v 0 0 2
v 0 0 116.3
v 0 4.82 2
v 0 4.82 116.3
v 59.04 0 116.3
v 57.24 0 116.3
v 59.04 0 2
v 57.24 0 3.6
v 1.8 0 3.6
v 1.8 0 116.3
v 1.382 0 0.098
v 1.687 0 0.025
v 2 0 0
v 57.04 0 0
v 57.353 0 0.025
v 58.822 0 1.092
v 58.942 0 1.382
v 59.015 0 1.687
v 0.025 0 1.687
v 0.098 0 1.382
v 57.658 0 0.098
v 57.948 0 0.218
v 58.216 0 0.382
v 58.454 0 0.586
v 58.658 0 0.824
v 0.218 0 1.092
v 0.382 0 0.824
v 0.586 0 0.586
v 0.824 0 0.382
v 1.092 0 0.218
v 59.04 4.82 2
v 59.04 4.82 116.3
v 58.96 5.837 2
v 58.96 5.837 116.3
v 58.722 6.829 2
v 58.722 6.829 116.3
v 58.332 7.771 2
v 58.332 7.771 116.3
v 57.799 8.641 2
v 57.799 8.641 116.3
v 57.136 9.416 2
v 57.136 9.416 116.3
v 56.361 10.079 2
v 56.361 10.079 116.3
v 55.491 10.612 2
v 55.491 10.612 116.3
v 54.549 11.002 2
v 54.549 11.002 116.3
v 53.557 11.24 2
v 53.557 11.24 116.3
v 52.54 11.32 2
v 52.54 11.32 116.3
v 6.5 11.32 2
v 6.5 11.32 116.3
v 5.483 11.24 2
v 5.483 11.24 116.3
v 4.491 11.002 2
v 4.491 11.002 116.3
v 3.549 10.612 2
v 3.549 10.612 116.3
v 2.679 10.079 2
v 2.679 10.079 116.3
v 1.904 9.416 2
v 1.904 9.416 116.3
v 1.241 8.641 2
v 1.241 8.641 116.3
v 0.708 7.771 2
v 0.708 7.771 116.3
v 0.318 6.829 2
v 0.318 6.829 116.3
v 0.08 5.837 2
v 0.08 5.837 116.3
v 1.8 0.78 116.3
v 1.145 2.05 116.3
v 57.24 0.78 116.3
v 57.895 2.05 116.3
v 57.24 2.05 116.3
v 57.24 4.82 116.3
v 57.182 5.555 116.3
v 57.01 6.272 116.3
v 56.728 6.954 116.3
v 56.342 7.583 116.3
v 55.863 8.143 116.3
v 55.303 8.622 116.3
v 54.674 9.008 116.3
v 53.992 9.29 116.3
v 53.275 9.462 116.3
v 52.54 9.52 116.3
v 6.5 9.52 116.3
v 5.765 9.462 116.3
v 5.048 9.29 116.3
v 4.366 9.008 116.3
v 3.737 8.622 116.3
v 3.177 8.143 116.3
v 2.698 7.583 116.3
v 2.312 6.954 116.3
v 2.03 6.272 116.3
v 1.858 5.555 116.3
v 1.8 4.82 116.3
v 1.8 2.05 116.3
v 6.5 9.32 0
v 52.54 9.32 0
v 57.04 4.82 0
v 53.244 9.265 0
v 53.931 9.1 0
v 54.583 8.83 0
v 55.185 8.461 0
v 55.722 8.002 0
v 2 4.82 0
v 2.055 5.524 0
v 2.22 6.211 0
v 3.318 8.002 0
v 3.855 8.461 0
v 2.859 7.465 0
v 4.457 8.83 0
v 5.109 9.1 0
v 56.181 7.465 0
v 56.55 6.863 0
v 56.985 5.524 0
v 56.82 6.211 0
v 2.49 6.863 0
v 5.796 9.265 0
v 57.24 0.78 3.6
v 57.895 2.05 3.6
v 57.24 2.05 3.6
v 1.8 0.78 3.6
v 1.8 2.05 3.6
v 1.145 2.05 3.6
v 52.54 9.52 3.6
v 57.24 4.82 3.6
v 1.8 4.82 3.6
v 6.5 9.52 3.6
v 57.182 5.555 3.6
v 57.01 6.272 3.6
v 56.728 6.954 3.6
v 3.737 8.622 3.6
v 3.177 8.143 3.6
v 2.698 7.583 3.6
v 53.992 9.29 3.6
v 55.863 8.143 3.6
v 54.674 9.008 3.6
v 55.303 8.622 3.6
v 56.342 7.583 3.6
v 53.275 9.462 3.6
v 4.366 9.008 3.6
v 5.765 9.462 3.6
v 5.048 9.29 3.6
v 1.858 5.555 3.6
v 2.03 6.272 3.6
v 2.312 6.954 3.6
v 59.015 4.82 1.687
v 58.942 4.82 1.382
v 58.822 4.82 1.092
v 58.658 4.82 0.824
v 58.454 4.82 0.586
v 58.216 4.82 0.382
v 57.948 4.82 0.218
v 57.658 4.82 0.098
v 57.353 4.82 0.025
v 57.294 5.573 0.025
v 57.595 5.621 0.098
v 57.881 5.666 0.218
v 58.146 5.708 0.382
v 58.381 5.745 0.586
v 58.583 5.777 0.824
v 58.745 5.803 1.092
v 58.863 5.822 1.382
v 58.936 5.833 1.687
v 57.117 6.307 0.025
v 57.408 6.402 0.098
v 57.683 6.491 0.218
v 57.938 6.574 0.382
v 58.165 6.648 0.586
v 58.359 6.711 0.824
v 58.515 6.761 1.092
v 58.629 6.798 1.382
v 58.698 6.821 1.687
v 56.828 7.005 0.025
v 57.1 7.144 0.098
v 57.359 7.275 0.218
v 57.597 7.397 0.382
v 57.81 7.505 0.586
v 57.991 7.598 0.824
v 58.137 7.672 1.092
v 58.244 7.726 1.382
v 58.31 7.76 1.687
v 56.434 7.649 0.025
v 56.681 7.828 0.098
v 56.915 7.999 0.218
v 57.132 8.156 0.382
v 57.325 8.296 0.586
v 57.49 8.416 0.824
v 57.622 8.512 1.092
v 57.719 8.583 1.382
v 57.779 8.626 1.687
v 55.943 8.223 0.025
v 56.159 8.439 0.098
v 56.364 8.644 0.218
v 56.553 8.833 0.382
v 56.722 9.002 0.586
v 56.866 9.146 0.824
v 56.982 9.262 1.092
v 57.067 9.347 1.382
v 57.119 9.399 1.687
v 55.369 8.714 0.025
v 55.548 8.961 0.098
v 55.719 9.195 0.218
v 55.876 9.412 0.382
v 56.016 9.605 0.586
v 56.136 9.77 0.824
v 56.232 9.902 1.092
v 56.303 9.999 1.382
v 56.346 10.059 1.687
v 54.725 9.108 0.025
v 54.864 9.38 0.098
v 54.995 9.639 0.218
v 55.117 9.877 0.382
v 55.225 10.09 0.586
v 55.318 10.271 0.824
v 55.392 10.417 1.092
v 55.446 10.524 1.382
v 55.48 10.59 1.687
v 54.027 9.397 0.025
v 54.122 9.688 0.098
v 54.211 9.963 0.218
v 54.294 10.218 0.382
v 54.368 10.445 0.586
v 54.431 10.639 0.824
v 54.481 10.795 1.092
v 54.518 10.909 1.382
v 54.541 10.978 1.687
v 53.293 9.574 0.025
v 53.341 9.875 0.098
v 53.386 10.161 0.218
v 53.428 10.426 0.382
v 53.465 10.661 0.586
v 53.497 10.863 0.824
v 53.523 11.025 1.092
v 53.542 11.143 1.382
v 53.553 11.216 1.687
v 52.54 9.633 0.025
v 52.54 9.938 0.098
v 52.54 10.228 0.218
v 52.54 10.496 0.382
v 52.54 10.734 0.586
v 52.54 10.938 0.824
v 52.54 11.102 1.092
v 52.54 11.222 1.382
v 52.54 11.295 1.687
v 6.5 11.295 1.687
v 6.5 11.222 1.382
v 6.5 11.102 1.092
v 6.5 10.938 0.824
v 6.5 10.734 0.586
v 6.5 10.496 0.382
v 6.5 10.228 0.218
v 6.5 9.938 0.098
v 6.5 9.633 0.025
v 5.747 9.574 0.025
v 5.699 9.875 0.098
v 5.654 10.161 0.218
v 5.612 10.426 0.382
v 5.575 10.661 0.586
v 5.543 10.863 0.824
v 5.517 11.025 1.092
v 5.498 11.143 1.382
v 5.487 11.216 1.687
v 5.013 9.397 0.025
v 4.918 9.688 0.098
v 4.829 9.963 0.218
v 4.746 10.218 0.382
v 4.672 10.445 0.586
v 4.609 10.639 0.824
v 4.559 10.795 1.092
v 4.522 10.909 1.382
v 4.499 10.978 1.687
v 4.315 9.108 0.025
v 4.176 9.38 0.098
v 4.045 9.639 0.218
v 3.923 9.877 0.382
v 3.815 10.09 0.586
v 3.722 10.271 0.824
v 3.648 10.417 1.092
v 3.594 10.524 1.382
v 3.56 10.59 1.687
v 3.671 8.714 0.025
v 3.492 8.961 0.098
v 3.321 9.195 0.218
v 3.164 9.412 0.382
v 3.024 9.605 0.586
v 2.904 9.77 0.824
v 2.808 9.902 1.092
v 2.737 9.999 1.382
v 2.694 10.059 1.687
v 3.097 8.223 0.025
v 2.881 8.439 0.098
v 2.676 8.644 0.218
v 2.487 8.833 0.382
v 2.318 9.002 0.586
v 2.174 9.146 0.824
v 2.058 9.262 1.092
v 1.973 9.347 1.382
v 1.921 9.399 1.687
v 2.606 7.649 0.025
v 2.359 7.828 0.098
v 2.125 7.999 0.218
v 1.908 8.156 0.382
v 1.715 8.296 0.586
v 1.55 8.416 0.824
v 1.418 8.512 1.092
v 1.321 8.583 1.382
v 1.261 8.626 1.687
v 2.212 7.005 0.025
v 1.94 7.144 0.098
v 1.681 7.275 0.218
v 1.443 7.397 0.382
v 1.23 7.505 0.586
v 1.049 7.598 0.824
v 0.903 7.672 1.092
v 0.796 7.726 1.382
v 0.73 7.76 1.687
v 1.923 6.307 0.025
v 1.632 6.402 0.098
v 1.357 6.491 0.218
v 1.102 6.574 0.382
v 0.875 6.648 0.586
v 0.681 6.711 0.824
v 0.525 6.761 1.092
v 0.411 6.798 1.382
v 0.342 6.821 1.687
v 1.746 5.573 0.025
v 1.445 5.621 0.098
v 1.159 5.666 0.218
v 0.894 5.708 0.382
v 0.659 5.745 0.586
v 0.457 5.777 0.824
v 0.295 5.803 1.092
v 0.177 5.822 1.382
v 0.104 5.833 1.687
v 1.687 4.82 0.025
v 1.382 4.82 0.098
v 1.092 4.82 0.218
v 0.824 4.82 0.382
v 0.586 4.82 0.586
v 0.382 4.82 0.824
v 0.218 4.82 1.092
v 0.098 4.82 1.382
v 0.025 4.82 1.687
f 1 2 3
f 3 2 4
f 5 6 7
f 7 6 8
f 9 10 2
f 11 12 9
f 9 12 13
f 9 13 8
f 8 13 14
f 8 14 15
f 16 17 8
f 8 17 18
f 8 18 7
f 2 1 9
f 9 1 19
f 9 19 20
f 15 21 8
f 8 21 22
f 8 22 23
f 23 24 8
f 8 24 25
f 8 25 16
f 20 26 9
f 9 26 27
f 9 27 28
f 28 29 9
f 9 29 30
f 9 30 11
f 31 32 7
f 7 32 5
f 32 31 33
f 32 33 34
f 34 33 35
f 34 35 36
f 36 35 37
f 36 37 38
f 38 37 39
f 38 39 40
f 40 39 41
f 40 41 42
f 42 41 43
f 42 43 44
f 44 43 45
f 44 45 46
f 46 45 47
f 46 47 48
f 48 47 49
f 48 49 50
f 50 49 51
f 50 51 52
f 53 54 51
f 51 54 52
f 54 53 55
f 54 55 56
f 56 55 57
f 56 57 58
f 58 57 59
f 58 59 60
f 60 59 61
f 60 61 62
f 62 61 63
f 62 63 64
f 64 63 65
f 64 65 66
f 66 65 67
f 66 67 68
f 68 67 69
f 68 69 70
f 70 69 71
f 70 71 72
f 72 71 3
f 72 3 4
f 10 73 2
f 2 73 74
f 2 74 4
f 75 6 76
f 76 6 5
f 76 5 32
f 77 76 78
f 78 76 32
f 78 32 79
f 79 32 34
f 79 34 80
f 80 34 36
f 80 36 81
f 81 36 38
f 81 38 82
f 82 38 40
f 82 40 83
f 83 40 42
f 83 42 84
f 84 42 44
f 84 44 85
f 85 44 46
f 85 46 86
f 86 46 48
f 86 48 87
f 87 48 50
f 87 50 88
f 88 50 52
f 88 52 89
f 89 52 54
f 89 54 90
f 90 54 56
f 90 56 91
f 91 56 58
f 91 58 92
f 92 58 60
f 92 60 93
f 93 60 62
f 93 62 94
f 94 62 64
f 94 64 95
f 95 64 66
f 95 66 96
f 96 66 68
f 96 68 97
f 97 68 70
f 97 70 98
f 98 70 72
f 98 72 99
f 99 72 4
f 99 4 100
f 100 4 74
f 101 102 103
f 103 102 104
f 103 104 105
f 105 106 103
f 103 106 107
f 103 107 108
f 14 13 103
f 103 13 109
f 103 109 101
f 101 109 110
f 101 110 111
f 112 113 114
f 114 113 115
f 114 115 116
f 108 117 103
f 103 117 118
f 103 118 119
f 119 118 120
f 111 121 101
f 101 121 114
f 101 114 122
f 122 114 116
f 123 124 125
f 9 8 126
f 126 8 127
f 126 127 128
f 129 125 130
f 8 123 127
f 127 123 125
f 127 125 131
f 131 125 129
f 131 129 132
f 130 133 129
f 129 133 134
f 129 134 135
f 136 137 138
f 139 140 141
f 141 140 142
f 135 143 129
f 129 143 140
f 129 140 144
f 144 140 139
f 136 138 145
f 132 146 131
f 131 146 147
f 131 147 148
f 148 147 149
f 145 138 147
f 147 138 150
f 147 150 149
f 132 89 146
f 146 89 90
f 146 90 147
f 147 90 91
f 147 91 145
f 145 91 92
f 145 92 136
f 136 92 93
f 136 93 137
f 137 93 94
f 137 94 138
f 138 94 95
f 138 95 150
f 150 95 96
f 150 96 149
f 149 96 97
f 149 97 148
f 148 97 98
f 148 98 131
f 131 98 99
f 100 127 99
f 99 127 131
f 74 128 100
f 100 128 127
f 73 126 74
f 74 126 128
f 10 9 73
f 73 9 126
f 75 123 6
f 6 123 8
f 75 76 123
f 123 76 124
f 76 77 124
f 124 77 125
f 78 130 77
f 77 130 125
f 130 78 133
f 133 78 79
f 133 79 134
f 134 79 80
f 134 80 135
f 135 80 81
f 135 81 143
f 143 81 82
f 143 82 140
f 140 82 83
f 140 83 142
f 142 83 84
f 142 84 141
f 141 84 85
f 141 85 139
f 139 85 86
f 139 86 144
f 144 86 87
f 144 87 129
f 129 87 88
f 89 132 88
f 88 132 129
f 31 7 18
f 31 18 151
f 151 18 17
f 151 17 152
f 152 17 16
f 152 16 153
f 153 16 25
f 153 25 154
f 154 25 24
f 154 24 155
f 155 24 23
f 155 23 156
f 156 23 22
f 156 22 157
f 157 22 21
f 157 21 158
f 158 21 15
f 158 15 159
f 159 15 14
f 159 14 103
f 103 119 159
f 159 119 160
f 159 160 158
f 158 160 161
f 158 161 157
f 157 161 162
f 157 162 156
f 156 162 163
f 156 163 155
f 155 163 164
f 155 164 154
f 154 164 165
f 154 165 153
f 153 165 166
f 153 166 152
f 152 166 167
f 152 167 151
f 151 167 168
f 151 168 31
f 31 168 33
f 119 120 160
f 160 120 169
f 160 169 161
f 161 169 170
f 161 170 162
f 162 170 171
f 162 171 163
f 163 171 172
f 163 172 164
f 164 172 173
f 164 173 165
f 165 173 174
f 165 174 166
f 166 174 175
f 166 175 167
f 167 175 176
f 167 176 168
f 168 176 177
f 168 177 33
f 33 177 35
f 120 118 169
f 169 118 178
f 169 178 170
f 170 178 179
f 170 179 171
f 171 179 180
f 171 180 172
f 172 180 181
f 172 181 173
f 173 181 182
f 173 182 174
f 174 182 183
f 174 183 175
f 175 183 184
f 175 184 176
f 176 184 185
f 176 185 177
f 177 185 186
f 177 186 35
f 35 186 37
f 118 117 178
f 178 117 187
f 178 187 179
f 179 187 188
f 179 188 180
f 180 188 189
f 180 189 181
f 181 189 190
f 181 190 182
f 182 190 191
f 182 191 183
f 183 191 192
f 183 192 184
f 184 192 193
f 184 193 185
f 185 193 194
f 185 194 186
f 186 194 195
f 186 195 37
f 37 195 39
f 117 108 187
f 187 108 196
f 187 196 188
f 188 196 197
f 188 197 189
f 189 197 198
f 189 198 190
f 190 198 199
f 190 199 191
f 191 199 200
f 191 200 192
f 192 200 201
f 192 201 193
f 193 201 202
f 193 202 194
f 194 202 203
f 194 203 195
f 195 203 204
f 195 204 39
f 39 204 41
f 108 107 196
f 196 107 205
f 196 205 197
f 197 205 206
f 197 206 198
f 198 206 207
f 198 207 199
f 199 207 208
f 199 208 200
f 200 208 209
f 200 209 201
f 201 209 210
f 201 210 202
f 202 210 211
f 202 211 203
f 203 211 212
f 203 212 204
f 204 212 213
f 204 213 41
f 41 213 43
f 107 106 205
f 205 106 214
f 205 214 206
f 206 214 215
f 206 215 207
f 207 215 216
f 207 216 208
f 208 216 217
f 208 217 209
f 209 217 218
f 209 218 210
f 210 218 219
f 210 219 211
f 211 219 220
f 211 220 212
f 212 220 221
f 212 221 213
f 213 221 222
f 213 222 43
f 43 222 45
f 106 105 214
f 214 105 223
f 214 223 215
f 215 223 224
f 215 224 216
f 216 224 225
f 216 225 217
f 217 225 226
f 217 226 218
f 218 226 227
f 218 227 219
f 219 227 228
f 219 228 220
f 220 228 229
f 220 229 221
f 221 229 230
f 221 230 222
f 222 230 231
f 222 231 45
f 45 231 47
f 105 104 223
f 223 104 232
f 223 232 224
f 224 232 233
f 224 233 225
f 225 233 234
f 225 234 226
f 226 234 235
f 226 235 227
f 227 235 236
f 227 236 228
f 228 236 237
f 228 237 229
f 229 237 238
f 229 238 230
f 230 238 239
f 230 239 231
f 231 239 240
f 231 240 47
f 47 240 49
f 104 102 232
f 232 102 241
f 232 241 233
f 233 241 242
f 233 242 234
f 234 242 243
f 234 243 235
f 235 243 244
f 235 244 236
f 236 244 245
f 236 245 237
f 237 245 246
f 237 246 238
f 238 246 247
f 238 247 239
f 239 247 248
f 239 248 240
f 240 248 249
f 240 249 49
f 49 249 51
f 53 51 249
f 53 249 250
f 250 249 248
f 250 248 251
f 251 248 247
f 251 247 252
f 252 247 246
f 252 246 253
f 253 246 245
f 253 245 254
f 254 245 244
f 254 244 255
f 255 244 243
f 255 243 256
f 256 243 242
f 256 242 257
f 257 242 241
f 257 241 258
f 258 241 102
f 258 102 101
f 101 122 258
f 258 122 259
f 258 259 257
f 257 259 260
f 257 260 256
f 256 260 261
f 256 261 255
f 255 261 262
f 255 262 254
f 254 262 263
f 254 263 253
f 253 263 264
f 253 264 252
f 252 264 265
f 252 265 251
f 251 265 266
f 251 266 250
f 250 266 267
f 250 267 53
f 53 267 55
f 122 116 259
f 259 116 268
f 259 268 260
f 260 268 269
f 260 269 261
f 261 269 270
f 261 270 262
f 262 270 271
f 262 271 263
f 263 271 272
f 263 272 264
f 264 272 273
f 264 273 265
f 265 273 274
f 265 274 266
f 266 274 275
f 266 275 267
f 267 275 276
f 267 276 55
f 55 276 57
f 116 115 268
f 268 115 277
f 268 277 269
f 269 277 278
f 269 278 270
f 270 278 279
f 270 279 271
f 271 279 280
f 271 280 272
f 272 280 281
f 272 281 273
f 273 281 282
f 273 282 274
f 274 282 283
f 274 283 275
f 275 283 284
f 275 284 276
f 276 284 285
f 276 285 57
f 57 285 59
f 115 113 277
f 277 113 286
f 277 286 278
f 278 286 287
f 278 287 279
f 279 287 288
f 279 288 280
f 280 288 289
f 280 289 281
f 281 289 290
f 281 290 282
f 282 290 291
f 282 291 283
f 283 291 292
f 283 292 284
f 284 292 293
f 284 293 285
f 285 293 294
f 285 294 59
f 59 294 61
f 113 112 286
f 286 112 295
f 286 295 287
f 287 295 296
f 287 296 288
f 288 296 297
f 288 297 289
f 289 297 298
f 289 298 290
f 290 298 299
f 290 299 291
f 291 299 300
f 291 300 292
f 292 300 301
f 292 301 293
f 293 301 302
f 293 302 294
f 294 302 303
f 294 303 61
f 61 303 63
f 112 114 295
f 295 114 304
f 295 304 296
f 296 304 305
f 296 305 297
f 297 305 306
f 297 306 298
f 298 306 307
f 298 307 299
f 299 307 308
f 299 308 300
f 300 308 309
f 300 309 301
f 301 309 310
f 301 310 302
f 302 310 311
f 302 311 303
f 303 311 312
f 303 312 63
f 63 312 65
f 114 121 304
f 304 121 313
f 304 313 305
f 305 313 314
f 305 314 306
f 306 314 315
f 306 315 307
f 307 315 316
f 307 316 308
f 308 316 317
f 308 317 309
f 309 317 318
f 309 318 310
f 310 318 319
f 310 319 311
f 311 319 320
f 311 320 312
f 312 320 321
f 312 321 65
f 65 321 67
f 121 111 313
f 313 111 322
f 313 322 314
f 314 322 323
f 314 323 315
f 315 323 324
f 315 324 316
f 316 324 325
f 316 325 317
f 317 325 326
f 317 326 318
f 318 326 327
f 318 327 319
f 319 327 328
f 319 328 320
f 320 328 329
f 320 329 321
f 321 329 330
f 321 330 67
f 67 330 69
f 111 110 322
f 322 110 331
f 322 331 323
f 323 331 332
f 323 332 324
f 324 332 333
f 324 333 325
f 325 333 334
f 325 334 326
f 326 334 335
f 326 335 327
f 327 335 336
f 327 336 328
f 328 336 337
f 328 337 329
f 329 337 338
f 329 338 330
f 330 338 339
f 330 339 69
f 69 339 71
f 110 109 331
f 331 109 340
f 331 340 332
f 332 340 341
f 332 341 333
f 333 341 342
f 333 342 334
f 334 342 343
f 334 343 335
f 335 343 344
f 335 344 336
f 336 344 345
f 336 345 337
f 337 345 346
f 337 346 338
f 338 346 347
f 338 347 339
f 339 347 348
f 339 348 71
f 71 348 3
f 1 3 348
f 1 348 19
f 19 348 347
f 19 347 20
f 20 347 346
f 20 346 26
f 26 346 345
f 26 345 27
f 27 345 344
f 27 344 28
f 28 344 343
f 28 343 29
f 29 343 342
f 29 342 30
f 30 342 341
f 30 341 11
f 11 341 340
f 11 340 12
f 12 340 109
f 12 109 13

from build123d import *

# Parameters (mm, degrees)
BOSS_EXTRUDE1_DEPTH = 116.3
CUT_EXTRUDE1_DEPTH  = 112.7
FILLET1_R           = 2


with BuildPart() as part:
    # Sketch1 → Boss-Extrude1 (new body)
    with BuildSketch(Plane.XY):
        with BuildLine():
            Line((0, 0), (59.04, 0))
            Line((59.04, 0), (59.04, 4.82))
            ThreePointArc((59.04, 4.82), (57.136194078, 9.416194078), (52.54, 11.32))
            Line((52.54, 11.32), (6.5, 11.32))
            ThreePointArc((6.5, 11.32), (1.903805922, 9.416194078), (0, 4.82))
            Line((0, 4.82), (0, 0))
        make_face()
    extrude(amount=BOSS_EXTRUDE1_DEPTH)

    # Sketch2 → Cut-Extrude1 (cut)
    with BuildSketch(Plane.XY.offset(116.3)):
        with BuildLine():
            Line((1.8, 4.82), (1.8, 2.05))
            Line((1.8, 2.05), (1.8, 0.78))
            Line((1.8, 0.78), (1.8, 0))
            Line((1.8, 0), (57.24, 0))
            Line((57.24, 0), (57.24, 0.78))
            Line((57.24, 0.78), (57.24, 2.05))
            Line((57.24, 2.05), (57.24, 4.82))
            ThreePointArc((57.24, 4.82), (55.863401872, 8.143401872), (52.54, 9.52))
            Line((52.54, 9.52), (6.5, 9.52))
            ThreePointArc((6.5, 9.52), (3.176598128, 8.143401872), (1.8, 4.82))
        make_face()
        Polygon((57.24, 2.05), (57.24, 0.78), (57.895, 2.05), align=None)
        Polygon((1.8, 0.78), (1.8, 2.05), (1.145, 2.05), align=None)
    extrude(amount=-CUT_EXTRUDE1_DEPTH, mode=Mode.SUBTRACT)

    # Fillet1
    fillet1_edges = [part.edges().sort_by_distance(p)[0] for p in [
        (1.903805922, 9.416194078, 0),
        (29.52, 11.32, 0),
        (57.136194078, 9.416194078, 0),
        (59.04, 2.41, 0),
        (0, 2.41, 0),
    ]]
    fillet(fillet1_edges, radius=FILLET1_R)


solid = part.part
